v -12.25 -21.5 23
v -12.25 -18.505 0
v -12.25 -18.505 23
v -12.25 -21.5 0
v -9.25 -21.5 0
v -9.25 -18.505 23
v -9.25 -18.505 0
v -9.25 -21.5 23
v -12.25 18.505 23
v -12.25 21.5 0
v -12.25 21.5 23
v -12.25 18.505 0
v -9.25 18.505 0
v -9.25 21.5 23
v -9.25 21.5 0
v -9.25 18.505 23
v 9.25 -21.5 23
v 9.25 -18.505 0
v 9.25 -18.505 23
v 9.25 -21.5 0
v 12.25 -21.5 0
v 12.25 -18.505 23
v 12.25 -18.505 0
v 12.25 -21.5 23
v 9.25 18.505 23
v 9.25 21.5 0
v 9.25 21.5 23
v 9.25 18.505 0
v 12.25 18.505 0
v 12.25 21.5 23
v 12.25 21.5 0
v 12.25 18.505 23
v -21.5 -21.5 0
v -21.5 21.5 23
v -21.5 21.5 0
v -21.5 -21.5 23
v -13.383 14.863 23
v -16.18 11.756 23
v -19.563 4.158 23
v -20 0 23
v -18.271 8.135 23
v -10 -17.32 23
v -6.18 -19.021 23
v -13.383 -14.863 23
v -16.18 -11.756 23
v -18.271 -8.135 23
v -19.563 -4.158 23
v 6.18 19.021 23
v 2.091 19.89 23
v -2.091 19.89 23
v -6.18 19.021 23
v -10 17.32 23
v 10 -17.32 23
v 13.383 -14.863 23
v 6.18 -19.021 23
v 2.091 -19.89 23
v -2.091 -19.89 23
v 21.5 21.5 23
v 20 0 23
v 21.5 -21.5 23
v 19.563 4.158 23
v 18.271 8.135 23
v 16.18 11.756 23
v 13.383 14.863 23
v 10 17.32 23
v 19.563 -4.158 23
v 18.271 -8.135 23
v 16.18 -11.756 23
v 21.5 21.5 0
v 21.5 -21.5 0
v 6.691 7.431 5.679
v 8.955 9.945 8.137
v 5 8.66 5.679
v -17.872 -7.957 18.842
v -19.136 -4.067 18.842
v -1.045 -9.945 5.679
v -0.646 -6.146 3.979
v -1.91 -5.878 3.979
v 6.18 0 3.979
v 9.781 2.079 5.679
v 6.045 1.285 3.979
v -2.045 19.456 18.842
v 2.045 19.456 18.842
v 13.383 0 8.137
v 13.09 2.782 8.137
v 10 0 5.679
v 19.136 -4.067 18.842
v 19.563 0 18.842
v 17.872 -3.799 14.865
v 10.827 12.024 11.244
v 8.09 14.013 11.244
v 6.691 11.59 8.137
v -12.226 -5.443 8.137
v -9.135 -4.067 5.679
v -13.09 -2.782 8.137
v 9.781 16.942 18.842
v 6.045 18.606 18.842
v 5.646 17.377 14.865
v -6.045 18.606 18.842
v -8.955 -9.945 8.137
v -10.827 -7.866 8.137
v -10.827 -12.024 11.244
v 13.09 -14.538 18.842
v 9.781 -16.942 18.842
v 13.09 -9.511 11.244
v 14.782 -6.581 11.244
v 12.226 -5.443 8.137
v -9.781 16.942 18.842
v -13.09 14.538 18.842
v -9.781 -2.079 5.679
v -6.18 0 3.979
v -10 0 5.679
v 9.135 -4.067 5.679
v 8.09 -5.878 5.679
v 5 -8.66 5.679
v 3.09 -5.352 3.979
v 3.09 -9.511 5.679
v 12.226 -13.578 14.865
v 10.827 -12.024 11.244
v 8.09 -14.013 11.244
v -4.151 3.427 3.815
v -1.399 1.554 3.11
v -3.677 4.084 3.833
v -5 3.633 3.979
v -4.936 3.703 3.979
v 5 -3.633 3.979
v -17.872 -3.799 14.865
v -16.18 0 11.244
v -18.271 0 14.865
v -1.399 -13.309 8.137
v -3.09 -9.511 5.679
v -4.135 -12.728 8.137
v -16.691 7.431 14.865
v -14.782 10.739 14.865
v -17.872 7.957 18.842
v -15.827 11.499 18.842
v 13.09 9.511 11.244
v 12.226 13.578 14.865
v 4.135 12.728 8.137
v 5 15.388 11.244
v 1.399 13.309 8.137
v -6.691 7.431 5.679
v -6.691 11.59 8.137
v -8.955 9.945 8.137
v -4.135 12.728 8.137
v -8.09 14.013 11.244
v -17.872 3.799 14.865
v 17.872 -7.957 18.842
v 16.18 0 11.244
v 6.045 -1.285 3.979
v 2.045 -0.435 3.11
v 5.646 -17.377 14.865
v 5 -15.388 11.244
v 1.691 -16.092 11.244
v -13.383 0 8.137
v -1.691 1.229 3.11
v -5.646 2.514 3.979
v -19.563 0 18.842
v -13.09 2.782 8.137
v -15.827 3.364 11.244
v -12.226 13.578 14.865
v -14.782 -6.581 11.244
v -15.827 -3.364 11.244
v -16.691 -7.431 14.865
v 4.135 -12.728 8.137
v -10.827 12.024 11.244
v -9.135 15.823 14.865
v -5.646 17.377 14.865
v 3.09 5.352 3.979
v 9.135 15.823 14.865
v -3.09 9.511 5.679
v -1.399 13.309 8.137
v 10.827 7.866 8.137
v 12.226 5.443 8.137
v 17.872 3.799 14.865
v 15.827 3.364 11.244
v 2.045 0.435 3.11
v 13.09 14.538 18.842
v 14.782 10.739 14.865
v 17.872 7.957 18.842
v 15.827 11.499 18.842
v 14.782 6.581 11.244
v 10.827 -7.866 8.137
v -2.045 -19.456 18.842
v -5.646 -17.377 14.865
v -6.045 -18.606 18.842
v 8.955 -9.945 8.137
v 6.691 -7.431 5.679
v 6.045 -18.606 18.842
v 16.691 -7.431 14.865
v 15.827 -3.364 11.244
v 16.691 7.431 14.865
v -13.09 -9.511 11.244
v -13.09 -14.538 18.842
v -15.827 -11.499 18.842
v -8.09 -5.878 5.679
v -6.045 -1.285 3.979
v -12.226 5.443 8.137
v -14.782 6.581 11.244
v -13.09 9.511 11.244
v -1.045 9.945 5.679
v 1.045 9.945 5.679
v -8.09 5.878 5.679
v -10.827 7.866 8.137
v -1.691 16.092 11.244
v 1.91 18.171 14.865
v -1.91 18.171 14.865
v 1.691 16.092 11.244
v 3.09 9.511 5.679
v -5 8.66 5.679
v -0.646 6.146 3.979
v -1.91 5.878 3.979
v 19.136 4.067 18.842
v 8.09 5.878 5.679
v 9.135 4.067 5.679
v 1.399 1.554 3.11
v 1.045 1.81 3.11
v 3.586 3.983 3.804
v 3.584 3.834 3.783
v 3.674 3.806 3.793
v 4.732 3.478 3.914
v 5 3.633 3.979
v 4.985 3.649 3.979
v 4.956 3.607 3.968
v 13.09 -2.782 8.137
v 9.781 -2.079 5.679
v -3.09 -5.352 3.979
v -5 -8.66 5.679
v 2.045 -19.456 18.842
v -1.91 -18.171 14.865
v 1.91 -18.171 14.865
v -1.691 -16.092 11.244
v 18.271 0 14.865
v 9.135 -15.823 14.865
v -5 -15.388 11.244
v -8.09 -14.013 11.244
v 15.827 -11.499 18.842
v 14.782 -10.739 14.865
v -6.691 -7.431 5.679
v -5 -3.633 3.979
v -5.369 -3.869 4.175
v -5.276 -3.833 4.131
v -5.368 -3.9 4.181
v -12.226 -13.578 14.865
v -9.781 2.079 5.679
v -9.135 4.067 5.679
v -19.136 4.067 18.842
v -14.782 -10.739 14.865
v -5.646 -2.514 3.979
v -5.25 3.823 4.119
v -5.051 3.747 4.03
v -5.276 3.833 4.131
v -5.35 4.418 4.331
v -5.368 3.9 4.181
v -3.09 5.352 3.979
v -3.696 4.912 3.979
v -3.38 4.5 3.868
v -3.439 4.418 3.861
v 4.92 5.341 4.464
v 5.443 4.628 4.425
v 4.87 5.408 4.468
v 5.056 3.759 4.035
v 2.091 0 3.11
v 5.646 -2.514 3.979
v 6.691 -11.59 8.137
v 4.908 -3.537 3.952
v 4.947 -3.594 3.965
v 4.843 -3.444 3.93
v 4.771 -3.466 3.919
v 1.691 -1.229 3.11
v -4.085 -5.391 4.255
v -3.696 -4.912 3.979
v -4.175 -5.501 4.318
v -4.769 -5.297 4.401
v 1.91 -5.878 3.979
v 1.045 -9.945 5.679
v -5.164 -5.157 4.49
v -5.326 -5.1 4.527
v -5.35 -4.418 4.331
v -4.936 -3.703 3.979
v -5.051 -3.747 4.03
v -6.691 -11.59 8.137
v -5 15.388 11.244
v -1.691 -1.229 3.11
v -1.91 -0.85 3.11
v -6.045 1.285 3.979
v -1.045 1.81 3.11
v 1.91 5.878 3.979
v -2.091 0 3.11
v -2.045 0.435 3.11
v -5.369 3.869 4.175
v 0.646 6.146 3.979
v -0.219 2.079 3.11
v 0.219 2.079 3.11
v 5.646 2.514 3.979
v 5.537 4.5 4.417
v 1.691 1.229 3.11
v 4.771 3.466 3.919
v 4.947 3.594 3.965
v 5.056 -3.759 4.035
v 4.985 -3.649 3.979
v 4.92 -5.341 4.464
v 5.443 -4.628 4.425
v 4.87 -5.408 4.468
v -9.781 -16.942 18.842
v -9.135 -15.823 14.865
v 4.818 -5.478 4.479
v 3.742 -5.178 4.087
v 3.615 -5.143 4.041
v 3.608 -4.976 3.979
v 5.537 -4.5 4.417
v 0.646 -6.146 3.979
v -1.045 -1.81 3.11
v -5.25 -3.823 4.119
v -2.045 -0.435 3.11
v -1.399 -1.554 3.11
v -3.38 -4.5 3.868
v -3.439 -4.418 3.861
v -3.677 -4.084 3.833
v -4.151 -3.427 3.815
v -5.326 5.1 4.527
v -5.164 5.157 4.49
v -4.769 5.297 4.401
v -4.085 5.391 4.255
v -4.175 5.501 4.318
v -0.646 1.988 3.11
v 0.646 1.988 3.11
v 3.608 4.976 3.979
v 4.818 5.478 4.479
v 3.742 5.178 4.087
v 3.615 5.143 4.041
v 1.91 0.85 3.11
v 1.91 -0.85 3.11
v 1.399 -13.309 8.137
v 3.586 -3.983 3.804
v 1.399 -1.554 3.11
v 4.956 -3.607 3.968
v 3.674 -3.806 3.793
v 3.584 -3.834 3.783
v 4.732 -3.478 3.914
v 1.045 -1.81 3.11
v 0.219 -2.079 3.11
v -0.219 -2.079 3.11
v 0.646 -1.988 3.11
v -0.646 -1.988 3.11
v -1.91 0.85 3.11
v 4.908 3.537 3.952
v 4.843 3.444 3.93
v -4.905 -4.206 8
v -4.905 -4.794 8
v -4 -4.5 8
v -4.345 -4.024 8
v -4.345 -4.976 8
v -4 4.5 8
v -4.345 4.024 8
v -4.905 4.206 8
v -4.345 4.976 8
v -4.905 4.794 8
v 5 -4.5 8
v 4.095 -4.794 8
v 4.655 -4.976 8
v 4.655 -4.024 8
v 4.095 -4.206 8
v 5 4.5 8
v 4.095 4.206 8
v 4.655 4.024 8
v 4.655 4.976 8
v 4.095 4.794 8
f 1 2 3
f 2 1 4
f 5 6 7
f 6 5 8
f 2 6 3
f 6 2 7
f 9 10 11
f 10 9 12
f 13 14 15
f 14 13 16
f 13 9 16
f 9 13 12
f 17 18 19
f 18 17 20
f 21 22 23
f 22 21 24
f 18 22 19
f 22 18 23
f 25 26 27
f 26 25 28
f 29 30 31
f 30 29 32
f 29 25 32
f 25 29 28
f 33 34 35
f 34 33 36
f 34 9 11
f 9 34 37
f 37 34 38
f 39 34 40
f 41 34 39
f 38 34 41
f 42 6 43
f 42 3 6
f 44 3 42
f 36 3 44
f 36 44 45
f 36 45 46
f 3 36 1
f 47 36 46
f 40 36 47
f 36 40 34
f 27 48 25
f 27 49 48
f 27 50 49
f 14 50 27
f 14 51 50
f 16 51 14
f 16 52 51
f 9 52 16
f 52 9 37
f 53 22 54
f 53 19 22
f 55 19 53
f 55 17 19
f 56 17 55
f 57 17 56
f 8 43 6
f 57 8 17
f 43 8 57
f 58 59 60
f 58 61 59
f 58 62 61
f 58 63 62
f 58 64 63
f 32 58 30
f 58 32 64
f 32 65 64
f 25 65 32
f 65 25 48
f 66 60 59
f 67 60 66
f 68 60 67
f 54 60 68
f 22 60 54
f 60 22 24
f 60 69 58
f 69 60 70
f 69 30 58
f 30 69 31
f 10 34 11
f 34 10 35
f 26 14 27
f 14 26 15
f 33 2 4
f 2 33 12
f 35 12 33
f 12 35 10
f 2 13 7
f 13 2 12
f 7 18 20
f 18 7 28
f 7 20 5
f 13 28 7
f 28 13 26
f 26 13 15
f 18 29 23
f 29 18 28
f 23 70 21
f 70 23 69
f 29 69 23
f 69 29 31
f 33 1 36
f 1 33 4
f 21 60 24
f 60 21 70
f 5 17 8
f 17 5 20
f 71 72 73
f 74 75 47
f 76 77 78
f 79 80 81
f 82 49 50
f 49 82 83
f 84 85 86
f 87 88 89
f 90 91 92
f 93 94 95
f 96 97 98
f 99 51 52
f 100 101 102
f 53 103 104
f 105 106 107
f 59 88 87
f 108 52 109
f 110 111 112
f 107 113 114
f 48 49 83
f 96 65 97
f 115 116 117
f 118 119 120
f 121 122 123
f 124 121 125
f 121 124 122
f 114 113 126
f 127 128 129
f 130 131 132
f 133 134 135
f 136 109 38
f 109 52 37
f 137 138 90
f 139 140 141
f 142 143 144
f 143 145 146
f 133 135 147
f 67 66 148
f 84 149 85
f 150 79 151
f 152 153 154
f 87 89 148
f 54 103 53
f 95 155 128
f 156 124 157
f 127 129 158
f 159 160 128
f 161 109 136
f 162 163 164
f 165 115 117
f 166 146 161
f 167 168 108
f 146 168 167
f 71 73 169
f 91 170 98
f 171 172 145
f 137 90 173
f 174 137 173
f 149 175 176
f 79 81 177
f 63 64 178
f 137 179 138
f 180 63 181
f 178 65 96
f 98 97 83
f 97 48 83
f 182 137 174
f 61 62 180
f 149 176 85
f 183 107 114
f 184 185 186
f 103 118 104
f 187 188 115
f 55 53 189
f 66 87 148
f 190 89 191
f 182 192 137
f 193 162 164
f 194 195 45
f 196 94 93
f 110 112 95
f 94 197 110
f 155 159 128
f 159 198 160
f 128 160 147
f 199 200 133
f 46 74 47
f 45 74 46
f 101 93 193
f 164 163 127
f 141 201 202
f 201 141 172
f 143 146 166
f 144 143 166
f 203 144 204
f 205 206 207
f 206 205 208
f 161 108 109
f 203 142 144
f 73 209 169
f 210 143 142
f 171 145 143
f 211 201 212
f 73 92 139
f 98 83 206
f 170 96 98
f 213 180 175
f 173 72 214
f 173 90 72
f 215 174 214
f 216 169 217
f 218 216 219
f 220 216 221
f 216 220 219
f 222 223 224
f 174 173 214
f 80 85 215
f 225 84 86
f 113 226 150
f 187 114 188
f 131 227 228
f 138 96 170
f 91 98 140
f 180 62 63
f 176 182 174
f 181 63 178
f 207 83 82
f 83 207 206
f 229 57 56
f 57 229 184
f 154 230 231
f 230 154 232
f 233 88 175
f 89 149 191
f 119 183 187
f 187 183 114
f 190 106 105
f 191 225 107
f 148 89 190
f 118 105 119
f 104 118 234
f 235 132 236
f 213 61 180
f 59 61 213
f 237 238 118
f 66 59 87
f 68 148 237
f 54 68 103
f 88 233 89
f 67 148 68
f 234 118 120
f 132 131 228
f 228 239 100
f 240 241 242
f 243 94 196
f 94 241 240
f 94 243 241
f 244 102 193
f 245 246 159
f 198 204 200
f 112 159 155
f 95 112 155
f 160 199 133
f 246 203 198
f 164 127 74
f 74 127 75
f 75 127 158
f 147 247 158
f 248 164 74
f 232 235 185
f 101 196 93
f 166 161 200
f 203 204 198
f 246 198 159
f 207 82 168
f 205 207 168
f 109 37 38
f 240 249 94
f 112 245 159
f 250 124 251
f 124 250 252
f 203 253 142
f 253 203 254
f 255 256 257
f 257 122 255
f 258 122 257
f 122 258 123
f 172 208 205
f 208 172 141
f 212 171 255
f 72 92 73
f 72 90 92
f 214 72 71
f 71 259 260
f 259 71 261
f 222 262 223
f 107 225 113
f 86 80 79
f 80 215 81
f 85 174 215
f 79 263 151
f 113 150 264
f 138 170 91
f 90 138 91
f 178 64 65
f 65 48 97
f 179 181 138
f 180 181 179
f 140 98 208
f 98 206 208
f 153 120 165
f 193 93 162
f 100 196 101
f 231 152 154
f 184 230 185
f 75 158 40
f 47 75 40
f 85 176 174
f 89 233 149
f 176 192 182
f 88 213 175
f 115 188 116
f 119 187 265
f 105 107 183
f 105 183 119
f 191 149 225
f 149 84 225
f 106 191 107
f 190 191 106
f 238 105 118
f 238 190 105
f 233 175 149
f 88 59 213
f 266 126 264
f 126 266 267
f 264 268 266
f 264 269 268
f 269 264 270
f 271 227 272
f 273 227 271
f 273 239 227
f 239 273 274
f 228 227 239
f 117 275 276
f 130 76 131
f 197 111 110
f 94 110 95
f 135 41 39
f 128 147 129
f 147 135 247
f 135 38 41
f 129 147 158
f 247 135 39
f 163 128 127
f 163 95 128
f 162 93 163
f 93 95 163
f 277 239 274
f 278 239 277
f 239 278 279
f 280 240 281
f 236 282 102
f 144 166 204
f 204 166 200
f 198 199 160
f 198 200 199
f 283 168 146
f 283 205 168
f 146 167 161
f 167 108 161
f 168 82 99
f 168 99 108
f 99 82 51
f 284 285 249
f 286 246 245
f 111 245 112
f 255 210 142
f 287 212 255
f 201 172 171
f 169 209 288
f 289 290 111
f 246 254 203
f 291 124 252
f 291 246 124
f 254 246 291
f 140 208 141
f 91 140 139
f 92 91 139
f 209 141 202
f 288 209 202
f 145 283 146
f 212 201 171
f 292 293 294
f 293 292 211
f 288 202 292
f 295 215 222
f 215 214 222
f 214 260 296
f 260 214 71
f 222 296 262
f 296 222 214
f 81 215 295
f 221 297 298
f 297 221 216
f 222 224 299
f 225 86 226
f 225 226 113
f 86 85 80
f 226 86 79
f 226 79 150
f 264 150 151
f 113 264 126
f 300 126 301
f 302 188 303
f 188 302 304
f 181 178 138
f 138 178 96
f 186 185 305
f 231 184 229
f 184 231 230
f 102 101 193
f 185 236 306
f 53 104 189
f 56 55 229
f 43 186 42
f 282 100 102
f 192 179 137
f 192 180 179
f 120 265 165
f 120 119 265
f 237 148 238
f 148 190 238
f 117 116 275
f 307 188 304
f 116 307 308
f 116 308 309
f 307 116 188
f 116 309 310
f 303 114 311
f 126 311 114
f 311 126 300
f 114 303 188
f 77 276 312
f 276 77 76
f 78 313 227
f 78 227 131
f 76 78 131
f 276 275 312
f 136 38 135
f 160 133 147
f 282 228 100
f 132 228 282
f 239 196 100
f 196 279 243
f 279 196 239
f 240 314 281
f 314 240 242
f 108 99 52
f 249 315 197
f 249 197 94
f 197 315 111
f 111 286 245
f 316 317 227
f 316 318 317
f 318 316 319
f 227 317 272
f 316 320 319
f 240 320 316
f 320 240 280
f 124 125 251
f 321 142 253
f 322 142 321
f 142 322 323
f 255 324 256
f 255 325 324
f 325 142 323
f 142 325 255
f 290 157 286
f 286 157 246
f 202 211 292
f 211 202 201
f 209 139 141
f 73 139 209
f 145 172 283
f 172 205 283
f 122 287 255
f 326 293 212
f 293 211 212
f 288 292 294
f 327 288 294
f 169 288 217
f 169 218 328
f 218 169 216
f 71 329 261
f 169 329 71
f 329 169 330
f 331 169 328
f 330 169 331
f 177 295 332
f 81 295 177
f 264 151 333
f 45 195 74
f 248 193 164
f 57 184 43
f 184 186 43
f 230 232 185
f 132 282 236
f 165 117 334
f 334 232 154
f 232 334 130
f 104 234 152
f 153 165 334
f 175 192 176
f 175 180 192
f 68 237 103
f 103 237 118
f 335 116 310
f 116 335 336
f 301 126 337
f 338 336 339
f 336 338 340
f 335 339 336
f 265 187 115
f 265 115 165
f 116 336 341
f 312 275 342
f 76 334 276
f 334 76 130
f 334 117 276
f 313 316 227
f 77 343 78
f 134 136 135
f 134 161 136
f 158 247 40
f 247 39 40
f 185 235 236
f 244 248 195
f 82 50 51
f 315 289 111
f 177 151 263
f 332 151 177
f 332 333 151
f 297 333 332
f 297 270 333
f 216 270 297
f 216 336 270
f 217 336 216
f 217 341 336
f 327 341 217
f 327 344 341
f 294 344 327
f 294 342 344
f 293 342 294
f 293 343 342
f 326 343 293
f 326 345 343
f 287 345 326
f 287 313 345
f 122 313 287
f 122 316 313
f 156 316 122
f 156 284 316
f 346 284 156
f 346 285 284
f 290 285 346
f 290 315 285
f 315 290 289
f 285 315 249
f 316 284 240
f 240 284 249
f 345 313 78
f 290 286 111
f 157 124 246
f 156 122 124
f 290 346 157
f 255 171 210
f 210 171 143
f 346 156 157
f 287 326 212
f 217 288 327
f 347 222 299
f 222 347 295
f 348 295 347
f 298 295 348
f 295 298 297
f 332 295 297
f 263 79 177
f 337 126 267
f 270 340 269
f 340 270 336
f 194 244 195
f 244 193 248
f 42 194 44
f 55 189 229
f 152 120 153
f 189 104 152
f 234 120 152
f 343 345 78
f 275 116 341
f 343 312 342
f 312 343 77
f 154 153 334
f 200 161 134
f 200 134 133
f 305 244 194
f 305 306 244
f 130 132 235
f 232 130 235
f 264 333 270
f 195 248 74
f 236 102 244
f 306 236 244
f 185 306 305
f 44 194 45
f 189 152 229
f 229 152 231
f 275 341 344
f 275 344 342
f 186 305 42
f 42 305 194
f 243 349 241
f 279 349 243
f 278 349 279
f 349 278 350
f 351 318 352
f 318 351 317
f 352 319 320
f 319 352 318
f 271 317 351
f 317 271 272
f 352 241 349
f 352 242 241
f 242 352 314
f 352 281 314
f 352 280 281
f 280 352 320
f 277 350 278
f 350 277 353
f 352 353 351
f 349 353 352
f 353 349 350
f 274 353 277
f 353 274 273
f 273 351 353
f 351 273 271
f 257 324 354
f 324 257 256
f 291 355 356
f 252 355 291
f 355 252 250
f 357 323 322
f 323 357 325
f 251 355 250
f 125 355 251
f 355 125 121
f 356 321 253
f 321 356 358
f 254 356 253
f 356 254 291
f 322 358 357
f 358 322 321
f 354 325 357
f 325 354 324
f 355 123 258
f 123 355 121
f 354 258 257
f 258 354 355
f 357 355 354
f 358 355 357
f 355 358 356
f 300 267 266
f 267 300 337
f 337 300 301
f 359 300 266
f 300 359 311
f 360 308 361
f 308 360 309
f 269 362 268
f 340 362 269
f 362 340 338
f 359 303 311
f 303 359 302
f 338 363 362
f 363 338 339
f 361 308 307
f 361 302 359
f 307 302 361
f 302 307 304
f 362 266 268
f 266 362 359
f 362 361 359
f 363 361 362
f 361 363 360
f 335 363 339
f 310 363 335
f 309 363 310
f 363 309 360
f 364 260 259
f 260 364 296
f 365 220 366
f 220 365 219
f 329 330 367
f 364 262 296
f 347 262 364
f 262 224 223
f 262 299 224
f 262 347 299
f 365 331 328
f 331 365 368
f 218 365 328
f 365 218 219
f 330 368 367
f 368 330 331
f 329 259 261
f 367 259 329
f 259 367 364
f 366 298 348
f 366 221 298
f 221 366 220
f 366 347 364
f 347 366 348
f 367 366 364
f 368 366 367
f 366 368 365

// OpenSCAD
// file: cube_jig_common.scad
ball_diameter = 40.0;
wall = 3.0;
gap = 0;
e = 0.01;
slot = 3.0;
cube_size = [ball_diameter+wall,
             ball_diameter+wall,
             ball_diameter/2+wall-gap];

module jig() {
  difference() {
    translate([-cube_size[0]/2, -cube_size[1]/2, 0]) cube(cube_size);
    translate([0, 0, ball_diameter/2+wall]) sphere(d=ball_diameter);
    for (i = [-cube_size[0]/4, cube_size[0]/4]) {
        for (j = [(slot-cube_size[1]-e)/2, (e+cube_size[1]-slot)/2]) {
            translate([i,j,0]) cube([slot, slot, ball_diameter+wall*2+e], center=true);
        }
    }
  }
}

jig();
// main file
use <cube_jig_common.scad>;
sep = 9.0;
hole = 2.5;
wall = 3.0;
jig();
for (i = [-sep/2, +sep/2]) {
    for (j = [-sep/2, +sep/2]) {
        translate([i,j,wall]) cylinder(d2=1.0, d1=hole, h = 5, center=false);  
        
    }
}
